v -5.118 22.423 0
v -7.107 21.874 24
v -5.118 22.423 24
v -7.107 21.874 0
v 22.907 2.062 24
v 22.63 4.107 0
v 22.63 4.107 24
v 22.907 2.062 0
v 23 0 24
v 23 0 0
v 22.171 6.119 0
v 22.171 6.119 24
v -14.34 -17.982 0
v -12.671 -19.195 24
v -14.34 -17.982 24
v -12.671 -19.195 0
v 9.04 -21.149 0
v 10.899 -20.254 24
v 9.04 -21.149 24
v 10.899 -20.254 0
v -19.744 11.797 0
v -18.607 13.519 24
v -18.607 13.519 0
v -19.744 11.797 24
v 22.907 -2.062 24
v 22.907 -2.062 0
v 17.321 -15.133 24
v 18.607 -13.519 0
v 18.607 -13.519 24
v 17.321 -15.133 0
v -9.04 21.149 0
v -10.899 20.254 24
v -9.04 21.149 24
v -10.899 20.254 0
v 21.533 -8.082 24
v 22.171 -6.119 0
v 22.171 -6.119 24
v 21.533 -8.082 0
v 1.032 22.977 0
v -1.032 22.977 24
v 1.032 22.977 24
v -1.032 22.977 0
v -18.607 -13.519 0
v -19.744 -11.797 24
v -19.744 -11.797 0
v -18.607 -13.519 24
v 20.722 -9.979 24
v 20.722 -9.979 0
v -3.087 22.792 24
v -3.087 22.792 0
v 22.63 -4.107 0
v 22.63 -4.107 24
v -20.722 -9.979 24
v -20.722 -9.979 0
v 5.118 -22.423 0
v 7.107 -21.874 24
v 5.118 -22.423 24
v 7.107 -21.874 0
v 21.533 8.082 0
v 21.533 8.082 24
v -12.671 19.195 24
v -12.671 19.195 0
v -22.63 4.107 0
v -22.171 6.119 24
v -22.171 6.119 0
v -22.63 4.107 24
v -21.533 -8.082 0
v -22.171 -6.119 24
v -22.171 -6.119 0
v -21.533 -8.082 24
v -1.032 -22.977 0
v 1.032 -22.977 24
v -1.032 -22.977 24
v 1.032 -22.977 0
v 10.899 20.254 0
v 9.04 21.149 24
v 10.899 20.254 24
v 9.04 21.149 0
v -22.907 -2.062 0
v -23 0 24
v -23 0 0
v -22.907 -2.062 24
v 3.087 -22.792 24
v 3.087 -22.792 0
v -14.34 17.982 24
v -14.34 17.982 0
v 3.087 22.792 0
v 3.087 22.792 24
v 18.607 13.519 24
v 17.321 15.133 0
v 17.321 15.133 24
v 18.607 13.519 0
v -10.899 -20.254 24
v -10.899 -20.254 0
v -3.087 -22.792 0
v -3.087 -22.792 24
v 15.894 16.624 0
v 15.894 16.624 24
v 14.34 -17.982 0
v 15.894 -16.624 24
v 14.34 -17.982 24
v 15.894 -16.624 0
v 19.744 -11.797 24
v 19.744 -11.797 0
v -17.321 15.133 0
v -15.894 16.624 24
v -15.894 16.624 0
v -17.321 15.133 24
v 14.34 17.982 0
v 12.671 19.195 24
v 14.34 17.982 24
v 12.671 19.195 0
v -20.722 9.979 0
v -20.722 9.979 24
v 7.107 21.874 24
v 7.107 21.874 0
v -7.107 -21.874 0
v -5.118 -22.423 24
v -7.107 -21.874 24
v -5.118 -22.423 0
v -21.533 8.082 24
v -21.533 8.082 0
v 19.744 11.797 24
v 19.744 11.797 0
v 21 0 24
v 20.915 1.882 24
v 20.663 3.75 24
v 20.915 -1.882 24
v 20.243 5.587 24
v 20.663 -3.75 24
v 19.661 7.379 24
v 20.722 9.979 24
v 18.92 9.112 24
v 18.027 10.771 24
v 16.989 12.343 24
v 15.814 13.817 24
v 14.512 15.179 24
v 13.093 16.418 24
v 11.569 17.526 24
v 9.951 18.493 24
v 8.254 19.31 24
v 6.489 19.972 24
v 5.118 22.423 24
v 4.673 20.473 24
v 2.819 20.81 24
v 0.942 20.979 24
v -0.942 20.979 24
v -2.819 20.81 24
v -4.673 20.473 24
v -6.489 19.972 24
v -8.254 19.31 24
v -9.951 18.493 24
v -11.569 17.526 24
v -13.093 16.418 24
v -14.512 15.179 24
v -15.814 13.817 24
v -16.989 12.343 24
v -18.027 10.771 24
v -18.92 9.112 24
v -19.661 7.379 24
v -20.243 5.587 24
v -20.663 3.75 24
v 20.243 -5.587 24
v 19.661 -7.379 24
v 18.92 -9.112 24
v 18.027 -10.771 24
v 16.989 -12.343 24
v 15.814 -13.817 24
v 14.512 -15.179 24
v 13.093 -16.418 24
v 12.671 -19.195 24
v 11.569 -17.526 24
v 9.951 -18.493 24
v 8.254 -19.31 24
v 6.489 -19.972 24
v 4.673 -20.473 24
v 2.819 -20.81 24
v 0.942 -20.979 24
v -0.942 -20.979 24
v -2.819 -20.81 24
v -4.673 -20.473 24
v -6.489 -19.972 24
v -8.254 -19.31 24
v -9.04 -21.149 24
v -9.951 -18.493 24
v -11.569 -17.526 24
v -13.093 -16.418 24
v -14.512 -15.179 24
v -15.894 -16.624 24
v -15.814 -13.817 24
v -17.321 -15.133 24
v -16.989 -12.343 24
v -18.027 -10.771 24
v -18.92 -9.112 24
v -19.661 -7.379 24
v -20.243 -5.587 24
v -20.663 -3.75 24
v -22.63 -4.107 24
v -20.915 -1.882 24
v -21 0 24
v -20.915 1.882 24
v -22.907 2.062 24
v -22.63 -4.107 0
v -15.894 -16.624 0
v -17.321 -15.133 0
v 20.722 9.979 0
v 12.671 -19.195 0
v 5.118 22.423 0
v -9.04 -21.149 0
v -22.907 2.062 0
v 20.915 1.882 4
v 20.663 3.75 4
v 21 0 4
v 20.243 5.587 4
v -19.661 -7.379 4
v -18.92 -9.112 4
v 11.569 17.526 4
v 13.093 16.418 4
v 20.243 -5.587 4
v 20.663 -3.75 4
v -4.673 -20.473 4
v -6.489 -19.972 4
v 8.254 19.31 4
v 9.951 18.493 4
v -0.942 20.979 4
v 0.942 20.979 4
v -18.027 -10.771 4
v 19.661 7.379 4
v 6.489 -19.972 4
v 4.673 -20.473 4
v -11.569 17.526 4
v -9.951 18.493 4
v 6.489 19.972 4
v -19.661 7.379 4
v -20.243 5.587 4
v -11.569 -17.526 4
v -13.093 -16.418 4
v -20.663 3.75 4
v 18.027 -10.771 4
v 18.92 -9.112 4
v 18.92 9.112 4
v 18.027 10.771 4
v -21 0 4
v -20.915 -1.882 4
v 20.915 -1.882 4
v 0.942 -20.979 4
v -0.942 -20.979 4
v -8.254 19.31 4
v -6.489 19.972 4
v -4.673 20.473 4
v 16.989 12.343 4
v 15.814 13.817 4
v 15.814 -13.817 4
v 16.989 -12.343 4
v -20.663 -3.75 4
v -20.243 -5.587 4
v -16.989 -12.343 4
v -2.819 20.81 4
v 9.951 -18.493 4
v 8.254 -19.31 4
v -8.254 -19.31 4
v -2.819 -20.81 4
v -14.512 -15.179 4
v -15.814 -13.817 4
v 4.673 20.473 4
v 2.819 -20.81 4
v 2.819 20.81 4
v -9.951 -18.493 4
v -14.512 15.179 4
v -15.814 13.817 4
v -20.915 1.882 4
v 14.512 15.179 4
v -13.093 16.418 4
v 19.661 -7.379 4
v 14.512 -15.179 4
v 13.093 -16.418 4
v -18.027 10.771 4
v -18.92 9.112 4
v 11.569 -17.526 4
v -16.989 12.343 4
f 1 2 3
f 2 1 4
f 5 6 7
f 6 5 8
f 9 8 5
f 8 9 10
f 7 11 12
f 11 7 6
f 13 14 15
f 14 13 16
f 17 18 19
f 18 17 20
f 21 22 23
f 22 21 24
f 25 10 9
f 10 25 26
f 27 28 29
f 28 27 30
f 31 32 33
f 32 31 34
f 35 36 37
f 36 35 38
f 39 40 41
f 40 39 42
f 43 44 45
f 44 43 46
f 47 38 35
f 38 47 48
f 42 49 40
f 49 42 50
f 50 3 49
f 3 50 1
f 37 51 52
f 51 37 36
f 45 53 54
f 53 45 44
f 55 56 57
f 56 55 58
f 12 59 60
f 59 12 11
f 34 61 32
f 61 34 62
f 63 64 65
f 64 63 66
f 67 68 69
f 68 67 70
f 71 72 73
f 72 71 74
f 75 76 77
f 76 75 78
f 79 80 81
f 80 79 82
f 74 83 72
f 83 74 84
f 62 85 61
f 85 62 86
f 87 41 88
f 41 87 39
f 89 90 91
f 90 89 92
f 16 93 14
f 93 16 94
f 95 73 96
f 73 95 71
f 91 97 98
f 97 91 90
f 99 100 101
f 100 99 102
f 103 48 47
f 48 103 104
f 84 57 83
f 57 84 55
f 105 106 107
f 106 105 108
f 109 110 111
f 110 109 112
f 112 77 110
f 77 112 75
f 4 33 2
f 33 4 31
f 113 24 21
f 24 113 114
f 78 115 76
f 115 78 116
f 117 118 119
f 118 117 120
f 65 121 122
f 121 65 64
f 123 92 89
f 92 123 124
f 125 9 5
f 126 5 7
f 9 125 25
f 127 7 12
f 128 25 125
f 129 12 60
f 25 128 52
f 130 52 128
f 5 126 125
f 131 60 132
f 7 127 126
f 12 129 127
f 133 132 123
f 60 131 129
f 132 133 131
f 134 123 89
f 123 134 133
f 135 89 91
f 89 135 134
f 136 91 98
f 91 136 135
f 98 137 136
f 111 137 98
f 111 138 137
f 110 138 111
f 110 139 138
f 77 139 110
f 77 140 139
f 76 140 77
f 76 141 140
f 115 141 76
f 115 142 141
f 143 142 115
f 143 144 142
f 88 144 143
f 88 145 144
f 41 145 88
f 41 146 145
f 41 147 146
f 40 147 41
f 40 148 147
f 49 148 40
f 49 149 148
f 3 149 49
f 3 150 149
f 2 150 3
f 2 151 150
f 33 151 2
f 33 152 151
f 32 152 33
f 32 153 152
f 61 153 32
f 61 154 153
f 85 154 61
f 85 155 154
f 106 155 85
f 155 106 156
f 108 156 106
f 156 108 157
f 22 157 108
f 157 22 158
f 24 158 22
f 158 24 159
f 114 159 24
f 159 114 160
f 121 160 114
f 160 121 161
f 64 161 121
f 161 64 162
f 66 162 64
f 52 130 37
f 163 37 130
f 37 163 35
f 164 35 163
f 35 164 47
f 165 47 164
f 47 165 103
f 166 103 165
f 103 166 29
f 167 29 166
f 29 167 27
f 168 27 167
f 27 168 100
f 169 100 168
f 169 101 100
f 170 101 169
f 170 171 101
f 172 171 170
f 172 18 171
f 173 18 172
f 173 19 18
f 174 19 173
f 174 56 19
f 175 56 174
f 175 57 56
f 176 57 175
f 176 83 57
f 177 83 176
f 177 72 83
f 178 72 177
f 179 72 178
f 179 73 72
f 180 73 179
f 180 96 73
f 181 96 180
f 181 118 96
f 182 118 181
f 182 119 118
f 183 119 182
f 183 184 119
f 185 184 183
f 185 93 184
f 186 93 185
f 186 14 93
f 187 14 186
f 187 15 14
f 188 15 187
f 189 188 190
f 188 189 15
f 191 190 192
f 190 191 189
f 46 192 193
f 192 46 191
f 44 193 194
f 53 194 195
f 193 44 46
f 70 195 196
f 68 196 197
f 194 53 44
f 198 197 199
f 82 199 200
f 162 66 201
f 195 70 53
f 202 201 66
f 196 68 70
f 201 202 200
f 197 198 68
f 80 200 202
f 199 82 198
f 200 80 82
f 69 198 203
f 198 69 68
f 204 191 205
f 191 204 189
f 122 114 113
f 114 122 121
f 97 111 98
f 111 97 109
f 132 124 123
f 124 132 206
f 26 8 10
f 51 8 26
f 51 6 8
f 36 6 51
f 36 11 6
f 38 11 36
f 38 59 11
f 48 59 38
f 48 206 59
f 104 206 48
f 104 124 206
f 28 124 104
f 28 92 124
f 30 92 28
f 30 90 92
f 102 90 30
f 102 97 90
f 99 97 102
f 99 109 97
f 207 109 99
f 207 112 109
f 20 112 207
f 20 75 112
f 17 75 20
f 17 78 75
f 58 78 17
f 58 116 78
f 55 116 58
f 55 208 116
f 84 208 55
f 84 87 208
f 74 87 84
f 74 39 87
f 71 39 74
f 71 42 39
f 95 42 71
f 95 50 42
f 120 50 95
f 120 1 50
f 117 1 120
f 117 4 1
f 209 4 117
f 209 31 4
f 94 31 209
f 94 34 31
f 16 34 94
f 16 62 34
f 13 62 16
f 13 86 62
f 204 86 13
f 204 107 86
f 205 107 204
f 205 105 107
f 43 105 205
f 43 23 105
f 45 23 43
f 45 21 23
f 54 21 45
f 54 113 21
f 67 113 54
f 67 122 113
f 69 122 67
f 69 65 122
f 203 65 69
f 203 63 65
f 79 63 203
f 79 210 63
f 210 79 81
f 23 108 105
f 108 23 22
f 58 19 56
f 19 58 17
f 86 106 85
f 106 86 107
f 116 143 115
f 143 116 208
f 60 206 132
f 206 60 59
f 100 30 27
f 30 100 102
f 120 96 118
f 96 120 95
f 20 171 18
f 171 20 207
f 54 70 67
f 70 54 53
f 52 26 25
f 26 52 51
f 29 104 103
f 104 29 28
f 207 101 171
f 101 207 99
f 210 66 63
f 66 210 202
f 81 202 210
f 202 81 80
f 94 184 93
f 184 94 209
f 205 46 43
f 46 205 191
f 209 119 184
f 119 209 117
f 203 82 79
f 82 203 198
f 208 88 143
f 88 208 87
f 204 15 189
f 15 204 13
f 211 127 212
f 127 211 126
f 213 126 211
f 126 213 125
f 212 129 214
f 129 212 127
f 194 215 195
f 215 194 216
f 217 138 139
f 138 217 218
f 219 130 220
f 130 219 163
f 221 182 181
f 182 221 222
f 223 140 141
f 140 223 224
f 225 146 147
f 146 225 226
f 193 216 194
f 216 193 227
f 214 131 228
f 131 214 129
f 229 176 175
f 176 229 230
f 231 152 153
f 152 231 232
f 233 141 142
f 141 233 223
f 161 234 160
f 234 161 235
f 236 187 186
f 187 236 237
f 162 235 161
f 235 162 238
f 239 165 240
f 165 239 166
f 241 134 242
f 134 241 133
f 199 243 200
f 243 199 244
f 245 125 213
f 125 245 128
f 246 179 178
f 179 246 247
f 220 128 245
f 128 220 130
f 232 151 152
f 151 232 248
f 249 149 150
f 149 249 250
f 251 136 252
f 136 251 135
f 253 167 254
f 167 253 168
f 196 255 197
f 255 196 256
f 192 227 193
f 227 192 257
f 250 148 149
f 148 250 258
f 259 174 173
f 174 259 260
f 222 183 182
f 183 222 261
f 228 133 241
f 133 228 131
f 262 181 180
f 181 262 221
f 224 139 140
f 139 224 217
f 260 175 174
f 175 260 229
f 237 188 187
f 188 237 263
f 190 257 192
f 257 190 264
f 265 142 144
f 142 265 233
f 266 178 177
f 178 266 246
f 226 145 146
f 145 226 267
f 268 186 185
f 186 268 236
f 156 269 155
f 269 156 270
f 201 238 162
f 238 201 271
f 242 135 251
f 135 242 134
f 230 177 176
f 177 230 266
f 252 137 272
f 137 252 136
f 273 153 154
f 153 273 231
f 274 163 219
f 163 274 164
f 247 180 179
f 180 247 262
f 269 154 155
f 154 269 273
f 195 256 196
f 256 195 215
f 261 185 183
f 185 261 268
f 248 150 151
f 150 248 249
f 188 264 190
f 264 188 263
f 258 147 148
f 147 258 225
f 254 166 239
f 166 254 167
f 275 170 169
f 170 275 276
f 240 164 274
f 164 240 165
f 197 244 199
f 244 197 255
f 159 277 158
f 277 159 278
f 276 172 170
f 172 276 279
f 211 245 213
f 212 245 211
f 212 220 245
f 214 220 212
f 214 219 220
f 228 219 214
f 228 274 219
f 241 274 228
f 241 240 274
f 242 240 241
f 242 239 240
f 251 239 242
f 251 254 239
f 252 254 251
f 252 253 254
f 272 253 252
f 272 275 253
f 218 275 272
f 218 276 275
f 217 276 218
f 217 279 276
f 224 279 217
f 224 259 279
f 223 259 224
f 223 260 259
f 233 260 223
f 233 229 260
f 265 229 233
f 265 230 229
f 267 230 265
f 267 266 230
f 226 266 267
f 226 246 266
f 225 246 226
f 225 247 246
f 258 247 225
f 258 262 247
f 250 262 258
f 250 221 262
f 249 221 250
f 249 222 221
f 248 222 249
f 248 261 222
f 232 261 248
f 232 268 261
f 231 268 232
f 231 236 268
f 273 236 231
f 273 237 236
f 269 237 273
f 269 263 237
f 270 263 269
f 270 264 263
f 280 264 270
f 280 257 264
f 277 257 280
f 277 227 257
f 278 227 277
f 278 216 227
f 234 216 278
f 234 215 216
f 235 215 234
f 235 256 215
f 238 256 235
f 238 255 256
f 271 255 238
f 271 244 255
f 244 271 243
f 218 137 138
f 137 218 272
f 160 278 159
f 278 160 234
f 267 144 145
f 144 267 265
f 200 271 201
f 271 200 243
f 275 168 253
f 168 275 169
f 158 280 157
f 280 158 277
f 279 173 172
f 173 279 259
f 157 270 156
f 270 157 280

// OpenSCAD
$fn=70;
inner_d=42;
wall_t=2;
end_t=4;
height=20;

difference() {
    cylinder(h=height+end_t,r=(inner_d+2*wall_t)/2);
    translate([0,0,end_t]) cylinder(h=height,r=(inner_d)/2);
}
